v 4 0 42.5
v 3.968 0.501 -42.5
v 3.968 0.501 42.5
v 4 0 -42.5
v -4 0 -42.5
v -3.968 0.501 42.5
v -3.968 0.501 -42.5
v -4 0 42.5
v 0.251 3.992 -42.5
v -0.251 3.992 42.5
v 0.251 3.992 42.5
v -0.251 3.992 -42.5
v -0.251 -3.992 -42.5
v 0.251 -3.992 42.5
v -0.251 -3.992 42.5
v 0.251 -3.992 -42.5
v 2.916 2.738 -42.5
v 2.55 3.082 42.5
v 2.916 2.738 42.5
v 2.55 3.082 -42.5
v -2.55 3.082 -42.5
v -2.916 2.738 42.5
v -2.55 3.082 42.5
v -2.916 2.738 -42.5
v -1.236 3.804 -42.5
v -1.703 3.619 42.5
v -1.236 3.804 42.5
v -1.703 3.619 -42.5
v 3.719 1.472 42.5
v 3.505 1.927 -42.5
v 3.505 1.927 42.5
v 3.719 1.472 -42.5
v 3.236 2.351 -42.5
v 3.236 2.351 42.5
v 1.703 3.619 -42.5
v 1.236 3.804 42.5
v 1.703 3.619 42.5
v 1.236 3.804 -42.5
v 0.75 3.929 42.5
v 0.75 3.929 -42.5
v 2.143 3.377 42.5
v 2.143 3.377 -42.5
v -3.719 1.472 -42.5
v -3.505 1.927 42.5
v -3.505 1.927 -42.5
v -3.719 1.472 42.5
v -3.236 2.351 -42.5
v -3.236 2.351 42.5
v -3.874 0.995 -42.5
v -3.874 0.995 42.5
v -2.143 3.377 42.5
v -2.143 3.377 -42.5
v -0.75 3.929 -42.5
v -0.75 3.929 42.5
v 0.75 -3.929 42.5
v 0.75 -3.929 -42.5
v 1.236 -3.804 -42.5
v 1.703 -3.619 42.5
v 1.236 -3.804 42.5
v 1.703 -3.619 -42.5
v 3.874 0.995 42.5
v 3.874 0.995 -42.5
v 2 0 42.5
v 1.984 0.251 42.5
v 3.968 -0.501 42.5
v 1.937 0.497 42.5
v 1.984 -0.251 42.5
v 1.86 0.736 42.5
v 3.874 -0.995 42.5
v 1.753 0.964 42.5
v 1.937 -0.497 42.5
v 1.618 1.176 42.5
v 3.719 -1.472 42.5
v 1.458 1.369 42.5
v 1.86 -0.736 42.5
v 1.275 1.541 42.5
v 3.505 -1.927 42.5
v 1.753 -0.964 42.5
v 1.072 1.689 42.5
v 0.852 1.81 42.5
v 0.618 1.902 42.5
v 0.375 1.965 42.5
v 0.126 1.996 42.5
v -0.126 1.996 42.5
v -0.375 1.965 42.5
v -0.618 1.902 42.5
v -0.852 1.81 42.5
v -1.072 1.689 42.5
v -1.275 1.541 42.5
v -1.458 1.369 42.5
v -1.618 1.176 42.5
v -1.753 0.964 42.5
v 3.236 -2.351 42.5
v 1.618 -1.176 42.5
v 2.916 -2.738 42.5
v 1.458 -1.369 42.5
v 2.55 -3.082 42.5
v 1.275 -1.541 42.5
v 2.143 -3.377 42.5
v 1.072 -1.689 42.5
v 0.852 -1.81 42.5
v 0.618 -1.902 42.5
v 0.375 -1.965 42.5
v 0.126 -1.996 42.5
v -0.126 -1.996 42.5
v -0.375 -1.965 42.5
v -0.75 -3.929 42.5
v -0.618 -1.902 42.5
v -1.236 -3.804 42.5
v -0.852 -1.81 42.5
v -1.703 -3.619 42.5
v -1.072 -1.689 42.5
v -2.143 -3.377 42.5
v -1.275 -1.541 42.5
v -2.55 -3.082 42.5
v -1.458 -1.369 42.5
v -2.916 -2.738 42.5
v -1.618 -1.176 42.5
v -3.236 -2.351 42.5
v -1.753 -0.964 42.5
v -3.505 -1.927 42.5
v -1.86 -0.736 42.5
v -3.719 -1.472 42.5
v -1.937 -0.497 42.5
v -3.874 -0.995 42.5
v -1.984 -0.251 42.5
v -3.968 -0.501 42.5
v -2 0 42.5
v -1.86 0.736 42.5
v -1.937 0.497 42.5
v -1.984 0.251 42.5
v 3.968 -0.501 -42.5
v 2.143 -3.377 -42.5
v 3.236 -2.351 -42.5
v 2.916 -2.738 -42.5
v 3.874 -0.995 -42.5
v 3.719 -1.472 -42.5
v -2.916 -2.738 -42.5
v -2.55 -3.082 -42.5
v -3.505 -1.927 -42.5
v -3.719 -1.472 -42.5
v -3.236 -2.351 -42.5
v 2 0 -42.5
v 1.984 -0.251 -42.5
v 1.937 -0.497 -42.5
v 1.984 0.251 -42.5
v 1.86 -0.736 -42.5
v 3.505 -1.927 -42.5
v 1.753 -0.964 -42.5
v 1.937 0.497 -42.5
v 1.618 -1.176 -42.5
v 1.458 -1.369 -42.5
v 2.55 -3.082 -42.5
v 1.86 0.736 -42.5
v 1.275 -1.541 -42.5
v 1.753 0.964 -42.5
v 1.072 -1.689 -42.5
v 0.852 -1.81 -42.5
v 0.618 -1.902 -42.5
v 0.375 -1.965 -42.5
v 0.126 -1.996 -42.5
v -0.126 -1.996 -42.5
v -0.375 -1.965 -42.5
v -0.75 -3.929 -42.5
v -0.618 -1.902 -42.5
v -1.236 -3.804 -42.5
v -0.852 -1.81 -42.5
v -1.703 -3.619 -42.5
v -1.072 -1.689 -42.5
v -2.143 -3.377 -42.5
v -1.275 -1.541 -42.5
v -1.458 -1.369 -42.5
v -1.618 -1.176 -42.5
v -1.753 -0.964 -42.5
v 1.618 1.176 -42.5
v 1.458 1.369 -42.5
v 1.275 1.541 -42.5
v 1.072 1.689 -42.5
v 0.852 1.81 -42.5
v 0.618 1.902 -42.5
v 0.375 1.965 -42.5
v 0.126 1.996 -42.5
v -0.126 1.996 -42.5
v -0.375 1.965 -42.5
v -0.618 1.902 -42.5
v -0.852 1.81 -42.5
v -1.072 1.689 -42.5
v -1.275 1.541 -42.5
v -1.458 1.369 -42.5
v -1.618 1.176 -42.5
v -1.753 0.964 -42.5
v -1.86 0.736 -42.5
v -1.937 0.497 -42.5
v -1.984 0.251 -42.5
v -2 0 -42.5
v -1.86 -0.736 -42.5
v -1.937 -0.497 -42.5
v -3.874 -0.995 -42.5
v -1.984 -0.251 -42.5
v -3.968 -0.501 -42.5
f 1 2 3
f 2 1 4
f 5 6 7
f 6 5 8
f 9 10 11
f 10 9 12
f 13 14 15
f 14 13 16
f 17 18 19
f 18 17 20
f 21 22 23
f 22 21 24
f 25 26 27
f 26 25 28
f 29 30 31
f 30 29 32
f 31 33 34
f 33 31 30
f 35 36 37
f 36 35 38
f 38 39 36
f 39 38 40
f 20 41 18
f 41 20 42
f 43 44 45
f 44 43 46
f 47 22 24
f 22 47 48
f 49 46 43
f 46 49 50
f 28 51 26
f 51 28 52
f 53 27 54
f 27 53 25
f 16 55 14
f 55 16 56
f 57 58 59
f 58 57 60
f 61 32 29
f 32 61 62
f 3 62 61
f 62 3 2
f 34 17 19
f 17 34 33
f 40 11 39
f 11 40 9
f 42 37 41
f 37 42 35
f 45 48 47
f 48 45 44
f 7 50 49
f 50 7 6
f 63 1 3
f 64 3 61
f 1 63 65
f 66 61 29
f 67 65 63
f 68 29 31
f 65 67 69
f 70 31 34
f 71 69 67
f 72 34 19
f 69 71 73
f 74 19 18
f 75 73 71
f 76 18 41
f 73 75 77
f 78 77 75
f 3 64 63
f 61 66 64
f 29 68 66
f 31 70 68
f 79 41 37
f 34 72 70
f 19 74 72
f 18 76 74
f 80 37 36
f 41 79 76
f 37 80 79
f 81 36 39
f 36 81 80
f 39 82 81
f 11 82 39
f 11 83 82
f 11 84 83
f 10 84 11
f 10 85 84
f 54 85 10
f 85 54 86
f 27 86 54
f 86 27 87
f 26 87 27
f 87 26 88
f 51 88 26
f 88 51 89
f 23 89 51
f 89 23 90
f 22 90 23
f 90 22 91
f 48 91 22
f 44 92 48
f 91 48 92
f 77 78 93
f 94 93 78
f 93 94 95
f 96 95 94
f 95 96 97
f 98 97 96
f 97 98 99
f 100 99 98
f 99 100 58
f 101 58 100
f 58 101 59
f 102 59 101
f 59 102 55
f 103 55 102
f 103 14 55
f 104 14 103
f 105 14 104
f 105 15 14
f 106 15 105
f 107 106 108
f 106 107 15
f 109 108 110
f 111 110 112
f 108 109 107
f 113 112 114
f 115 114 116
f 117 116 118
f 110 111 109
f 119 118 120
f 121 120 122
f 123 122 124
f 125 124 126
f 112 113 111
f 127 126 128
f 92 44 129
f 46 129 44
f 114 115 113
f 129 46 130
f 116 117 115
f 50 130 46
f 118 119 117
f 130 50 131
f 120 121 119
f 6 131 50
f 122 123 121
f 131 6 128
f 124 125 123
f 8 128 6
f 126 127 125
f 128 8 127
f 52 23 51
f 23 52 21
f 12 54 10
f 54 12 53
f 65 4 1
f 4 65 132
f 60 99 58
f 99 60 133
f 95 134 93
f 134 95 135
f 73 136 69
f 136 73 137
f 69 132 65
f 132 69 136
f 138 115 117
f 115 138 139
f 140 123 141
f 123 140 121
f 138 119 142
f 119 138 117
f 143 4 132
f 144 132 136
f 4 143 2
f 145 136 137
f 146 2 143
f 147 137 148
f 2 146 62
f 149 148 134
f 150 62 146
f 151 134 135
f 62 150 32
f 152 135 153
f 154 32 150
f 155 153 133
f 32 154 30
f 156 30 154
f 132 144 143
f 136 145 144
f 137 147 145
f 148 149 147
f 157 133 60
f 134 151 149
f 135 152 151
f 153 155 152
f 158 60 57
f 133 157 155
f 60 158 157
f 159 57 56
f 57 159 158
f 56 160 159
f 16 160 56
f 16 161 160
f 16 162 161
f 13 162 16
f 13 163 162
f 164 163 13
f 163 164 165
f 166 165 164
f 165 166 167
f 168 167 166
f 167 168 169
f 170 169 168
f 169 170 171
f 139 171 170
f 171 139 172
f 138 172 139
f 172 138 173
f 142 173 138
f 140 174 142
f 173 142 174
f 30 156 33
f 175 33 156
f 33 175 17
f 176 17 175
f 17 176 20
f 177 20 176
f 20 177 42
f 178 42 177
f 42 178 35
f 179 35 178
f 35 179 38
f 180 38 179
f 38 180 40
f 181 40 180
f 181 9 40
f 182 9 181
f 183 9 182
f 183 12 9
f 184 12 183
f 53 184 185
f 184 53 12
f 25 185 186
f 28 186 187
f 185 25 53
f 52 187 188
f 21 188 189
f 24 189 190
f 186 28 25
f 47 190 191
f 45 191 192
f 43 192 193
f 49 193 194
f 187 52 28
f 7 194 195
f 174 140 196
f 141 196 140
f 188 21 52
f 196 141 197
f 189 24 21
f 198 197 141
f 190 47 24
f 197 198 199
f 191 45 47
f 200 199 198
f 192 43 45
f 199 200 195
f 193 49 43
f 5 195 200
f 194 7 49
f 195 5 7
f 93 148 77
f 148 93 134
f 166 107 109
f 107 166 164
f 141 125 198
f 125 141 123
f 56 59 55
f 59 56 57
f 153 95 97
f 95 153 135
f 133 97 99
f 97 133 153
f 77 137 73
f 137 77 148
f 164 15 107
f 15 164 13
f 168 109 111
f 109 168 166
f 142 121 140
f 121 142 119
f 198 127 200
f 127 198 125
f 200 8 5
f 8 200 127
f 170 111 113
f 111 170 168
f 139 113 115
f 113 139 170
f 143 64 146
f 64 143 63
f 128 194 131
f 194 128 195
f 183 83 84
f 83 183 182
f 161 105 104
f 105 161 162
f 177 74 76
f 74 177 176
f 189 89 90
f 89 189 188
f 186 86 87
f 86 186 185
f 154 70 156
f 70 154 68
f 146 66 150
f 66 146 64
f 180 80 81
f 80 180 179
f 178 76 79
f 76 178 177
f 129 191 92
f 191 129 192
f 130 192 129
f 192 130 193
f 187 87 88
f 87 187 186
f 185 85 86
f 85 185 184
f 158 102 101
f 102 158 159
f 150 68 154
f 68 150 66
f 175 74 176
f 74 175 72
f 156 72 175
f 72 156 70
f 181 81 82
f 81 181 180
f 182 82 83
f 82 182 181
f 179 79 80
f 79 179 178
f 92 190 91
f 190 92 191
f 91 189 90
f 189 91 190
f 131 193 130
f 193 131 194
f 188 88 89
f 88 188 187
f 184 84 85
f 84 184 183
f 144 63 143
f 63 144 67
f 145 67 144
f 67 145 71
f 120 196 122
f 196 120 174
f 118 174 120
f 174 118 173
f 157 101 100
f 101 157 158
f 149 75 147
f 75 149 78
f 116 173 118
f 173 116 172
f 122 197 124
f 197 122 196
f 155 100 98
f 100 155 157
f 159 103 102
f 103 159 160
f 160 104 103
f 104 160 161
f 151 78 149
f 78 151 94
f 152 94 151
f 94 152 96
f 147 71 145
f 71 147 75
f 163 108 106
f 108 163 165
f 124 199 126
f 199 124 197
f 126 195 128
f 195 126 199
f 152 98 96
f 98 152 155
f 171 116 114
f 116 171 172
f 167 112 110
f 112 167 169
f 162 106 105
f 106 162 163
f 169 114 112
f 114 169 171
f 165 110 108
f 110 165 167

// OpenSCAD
$fn = 50;


difference() {
	union() {
		translate(v = [0, 0, -42.5000000000]) {
			cylinder(h = 85, r = 4.0000000000);
		}
	}
	union() {
		translate(v = [0, 0, -100.0000000000]) {
			cylinder(h = 200, r = 2);
		}
	}
}
